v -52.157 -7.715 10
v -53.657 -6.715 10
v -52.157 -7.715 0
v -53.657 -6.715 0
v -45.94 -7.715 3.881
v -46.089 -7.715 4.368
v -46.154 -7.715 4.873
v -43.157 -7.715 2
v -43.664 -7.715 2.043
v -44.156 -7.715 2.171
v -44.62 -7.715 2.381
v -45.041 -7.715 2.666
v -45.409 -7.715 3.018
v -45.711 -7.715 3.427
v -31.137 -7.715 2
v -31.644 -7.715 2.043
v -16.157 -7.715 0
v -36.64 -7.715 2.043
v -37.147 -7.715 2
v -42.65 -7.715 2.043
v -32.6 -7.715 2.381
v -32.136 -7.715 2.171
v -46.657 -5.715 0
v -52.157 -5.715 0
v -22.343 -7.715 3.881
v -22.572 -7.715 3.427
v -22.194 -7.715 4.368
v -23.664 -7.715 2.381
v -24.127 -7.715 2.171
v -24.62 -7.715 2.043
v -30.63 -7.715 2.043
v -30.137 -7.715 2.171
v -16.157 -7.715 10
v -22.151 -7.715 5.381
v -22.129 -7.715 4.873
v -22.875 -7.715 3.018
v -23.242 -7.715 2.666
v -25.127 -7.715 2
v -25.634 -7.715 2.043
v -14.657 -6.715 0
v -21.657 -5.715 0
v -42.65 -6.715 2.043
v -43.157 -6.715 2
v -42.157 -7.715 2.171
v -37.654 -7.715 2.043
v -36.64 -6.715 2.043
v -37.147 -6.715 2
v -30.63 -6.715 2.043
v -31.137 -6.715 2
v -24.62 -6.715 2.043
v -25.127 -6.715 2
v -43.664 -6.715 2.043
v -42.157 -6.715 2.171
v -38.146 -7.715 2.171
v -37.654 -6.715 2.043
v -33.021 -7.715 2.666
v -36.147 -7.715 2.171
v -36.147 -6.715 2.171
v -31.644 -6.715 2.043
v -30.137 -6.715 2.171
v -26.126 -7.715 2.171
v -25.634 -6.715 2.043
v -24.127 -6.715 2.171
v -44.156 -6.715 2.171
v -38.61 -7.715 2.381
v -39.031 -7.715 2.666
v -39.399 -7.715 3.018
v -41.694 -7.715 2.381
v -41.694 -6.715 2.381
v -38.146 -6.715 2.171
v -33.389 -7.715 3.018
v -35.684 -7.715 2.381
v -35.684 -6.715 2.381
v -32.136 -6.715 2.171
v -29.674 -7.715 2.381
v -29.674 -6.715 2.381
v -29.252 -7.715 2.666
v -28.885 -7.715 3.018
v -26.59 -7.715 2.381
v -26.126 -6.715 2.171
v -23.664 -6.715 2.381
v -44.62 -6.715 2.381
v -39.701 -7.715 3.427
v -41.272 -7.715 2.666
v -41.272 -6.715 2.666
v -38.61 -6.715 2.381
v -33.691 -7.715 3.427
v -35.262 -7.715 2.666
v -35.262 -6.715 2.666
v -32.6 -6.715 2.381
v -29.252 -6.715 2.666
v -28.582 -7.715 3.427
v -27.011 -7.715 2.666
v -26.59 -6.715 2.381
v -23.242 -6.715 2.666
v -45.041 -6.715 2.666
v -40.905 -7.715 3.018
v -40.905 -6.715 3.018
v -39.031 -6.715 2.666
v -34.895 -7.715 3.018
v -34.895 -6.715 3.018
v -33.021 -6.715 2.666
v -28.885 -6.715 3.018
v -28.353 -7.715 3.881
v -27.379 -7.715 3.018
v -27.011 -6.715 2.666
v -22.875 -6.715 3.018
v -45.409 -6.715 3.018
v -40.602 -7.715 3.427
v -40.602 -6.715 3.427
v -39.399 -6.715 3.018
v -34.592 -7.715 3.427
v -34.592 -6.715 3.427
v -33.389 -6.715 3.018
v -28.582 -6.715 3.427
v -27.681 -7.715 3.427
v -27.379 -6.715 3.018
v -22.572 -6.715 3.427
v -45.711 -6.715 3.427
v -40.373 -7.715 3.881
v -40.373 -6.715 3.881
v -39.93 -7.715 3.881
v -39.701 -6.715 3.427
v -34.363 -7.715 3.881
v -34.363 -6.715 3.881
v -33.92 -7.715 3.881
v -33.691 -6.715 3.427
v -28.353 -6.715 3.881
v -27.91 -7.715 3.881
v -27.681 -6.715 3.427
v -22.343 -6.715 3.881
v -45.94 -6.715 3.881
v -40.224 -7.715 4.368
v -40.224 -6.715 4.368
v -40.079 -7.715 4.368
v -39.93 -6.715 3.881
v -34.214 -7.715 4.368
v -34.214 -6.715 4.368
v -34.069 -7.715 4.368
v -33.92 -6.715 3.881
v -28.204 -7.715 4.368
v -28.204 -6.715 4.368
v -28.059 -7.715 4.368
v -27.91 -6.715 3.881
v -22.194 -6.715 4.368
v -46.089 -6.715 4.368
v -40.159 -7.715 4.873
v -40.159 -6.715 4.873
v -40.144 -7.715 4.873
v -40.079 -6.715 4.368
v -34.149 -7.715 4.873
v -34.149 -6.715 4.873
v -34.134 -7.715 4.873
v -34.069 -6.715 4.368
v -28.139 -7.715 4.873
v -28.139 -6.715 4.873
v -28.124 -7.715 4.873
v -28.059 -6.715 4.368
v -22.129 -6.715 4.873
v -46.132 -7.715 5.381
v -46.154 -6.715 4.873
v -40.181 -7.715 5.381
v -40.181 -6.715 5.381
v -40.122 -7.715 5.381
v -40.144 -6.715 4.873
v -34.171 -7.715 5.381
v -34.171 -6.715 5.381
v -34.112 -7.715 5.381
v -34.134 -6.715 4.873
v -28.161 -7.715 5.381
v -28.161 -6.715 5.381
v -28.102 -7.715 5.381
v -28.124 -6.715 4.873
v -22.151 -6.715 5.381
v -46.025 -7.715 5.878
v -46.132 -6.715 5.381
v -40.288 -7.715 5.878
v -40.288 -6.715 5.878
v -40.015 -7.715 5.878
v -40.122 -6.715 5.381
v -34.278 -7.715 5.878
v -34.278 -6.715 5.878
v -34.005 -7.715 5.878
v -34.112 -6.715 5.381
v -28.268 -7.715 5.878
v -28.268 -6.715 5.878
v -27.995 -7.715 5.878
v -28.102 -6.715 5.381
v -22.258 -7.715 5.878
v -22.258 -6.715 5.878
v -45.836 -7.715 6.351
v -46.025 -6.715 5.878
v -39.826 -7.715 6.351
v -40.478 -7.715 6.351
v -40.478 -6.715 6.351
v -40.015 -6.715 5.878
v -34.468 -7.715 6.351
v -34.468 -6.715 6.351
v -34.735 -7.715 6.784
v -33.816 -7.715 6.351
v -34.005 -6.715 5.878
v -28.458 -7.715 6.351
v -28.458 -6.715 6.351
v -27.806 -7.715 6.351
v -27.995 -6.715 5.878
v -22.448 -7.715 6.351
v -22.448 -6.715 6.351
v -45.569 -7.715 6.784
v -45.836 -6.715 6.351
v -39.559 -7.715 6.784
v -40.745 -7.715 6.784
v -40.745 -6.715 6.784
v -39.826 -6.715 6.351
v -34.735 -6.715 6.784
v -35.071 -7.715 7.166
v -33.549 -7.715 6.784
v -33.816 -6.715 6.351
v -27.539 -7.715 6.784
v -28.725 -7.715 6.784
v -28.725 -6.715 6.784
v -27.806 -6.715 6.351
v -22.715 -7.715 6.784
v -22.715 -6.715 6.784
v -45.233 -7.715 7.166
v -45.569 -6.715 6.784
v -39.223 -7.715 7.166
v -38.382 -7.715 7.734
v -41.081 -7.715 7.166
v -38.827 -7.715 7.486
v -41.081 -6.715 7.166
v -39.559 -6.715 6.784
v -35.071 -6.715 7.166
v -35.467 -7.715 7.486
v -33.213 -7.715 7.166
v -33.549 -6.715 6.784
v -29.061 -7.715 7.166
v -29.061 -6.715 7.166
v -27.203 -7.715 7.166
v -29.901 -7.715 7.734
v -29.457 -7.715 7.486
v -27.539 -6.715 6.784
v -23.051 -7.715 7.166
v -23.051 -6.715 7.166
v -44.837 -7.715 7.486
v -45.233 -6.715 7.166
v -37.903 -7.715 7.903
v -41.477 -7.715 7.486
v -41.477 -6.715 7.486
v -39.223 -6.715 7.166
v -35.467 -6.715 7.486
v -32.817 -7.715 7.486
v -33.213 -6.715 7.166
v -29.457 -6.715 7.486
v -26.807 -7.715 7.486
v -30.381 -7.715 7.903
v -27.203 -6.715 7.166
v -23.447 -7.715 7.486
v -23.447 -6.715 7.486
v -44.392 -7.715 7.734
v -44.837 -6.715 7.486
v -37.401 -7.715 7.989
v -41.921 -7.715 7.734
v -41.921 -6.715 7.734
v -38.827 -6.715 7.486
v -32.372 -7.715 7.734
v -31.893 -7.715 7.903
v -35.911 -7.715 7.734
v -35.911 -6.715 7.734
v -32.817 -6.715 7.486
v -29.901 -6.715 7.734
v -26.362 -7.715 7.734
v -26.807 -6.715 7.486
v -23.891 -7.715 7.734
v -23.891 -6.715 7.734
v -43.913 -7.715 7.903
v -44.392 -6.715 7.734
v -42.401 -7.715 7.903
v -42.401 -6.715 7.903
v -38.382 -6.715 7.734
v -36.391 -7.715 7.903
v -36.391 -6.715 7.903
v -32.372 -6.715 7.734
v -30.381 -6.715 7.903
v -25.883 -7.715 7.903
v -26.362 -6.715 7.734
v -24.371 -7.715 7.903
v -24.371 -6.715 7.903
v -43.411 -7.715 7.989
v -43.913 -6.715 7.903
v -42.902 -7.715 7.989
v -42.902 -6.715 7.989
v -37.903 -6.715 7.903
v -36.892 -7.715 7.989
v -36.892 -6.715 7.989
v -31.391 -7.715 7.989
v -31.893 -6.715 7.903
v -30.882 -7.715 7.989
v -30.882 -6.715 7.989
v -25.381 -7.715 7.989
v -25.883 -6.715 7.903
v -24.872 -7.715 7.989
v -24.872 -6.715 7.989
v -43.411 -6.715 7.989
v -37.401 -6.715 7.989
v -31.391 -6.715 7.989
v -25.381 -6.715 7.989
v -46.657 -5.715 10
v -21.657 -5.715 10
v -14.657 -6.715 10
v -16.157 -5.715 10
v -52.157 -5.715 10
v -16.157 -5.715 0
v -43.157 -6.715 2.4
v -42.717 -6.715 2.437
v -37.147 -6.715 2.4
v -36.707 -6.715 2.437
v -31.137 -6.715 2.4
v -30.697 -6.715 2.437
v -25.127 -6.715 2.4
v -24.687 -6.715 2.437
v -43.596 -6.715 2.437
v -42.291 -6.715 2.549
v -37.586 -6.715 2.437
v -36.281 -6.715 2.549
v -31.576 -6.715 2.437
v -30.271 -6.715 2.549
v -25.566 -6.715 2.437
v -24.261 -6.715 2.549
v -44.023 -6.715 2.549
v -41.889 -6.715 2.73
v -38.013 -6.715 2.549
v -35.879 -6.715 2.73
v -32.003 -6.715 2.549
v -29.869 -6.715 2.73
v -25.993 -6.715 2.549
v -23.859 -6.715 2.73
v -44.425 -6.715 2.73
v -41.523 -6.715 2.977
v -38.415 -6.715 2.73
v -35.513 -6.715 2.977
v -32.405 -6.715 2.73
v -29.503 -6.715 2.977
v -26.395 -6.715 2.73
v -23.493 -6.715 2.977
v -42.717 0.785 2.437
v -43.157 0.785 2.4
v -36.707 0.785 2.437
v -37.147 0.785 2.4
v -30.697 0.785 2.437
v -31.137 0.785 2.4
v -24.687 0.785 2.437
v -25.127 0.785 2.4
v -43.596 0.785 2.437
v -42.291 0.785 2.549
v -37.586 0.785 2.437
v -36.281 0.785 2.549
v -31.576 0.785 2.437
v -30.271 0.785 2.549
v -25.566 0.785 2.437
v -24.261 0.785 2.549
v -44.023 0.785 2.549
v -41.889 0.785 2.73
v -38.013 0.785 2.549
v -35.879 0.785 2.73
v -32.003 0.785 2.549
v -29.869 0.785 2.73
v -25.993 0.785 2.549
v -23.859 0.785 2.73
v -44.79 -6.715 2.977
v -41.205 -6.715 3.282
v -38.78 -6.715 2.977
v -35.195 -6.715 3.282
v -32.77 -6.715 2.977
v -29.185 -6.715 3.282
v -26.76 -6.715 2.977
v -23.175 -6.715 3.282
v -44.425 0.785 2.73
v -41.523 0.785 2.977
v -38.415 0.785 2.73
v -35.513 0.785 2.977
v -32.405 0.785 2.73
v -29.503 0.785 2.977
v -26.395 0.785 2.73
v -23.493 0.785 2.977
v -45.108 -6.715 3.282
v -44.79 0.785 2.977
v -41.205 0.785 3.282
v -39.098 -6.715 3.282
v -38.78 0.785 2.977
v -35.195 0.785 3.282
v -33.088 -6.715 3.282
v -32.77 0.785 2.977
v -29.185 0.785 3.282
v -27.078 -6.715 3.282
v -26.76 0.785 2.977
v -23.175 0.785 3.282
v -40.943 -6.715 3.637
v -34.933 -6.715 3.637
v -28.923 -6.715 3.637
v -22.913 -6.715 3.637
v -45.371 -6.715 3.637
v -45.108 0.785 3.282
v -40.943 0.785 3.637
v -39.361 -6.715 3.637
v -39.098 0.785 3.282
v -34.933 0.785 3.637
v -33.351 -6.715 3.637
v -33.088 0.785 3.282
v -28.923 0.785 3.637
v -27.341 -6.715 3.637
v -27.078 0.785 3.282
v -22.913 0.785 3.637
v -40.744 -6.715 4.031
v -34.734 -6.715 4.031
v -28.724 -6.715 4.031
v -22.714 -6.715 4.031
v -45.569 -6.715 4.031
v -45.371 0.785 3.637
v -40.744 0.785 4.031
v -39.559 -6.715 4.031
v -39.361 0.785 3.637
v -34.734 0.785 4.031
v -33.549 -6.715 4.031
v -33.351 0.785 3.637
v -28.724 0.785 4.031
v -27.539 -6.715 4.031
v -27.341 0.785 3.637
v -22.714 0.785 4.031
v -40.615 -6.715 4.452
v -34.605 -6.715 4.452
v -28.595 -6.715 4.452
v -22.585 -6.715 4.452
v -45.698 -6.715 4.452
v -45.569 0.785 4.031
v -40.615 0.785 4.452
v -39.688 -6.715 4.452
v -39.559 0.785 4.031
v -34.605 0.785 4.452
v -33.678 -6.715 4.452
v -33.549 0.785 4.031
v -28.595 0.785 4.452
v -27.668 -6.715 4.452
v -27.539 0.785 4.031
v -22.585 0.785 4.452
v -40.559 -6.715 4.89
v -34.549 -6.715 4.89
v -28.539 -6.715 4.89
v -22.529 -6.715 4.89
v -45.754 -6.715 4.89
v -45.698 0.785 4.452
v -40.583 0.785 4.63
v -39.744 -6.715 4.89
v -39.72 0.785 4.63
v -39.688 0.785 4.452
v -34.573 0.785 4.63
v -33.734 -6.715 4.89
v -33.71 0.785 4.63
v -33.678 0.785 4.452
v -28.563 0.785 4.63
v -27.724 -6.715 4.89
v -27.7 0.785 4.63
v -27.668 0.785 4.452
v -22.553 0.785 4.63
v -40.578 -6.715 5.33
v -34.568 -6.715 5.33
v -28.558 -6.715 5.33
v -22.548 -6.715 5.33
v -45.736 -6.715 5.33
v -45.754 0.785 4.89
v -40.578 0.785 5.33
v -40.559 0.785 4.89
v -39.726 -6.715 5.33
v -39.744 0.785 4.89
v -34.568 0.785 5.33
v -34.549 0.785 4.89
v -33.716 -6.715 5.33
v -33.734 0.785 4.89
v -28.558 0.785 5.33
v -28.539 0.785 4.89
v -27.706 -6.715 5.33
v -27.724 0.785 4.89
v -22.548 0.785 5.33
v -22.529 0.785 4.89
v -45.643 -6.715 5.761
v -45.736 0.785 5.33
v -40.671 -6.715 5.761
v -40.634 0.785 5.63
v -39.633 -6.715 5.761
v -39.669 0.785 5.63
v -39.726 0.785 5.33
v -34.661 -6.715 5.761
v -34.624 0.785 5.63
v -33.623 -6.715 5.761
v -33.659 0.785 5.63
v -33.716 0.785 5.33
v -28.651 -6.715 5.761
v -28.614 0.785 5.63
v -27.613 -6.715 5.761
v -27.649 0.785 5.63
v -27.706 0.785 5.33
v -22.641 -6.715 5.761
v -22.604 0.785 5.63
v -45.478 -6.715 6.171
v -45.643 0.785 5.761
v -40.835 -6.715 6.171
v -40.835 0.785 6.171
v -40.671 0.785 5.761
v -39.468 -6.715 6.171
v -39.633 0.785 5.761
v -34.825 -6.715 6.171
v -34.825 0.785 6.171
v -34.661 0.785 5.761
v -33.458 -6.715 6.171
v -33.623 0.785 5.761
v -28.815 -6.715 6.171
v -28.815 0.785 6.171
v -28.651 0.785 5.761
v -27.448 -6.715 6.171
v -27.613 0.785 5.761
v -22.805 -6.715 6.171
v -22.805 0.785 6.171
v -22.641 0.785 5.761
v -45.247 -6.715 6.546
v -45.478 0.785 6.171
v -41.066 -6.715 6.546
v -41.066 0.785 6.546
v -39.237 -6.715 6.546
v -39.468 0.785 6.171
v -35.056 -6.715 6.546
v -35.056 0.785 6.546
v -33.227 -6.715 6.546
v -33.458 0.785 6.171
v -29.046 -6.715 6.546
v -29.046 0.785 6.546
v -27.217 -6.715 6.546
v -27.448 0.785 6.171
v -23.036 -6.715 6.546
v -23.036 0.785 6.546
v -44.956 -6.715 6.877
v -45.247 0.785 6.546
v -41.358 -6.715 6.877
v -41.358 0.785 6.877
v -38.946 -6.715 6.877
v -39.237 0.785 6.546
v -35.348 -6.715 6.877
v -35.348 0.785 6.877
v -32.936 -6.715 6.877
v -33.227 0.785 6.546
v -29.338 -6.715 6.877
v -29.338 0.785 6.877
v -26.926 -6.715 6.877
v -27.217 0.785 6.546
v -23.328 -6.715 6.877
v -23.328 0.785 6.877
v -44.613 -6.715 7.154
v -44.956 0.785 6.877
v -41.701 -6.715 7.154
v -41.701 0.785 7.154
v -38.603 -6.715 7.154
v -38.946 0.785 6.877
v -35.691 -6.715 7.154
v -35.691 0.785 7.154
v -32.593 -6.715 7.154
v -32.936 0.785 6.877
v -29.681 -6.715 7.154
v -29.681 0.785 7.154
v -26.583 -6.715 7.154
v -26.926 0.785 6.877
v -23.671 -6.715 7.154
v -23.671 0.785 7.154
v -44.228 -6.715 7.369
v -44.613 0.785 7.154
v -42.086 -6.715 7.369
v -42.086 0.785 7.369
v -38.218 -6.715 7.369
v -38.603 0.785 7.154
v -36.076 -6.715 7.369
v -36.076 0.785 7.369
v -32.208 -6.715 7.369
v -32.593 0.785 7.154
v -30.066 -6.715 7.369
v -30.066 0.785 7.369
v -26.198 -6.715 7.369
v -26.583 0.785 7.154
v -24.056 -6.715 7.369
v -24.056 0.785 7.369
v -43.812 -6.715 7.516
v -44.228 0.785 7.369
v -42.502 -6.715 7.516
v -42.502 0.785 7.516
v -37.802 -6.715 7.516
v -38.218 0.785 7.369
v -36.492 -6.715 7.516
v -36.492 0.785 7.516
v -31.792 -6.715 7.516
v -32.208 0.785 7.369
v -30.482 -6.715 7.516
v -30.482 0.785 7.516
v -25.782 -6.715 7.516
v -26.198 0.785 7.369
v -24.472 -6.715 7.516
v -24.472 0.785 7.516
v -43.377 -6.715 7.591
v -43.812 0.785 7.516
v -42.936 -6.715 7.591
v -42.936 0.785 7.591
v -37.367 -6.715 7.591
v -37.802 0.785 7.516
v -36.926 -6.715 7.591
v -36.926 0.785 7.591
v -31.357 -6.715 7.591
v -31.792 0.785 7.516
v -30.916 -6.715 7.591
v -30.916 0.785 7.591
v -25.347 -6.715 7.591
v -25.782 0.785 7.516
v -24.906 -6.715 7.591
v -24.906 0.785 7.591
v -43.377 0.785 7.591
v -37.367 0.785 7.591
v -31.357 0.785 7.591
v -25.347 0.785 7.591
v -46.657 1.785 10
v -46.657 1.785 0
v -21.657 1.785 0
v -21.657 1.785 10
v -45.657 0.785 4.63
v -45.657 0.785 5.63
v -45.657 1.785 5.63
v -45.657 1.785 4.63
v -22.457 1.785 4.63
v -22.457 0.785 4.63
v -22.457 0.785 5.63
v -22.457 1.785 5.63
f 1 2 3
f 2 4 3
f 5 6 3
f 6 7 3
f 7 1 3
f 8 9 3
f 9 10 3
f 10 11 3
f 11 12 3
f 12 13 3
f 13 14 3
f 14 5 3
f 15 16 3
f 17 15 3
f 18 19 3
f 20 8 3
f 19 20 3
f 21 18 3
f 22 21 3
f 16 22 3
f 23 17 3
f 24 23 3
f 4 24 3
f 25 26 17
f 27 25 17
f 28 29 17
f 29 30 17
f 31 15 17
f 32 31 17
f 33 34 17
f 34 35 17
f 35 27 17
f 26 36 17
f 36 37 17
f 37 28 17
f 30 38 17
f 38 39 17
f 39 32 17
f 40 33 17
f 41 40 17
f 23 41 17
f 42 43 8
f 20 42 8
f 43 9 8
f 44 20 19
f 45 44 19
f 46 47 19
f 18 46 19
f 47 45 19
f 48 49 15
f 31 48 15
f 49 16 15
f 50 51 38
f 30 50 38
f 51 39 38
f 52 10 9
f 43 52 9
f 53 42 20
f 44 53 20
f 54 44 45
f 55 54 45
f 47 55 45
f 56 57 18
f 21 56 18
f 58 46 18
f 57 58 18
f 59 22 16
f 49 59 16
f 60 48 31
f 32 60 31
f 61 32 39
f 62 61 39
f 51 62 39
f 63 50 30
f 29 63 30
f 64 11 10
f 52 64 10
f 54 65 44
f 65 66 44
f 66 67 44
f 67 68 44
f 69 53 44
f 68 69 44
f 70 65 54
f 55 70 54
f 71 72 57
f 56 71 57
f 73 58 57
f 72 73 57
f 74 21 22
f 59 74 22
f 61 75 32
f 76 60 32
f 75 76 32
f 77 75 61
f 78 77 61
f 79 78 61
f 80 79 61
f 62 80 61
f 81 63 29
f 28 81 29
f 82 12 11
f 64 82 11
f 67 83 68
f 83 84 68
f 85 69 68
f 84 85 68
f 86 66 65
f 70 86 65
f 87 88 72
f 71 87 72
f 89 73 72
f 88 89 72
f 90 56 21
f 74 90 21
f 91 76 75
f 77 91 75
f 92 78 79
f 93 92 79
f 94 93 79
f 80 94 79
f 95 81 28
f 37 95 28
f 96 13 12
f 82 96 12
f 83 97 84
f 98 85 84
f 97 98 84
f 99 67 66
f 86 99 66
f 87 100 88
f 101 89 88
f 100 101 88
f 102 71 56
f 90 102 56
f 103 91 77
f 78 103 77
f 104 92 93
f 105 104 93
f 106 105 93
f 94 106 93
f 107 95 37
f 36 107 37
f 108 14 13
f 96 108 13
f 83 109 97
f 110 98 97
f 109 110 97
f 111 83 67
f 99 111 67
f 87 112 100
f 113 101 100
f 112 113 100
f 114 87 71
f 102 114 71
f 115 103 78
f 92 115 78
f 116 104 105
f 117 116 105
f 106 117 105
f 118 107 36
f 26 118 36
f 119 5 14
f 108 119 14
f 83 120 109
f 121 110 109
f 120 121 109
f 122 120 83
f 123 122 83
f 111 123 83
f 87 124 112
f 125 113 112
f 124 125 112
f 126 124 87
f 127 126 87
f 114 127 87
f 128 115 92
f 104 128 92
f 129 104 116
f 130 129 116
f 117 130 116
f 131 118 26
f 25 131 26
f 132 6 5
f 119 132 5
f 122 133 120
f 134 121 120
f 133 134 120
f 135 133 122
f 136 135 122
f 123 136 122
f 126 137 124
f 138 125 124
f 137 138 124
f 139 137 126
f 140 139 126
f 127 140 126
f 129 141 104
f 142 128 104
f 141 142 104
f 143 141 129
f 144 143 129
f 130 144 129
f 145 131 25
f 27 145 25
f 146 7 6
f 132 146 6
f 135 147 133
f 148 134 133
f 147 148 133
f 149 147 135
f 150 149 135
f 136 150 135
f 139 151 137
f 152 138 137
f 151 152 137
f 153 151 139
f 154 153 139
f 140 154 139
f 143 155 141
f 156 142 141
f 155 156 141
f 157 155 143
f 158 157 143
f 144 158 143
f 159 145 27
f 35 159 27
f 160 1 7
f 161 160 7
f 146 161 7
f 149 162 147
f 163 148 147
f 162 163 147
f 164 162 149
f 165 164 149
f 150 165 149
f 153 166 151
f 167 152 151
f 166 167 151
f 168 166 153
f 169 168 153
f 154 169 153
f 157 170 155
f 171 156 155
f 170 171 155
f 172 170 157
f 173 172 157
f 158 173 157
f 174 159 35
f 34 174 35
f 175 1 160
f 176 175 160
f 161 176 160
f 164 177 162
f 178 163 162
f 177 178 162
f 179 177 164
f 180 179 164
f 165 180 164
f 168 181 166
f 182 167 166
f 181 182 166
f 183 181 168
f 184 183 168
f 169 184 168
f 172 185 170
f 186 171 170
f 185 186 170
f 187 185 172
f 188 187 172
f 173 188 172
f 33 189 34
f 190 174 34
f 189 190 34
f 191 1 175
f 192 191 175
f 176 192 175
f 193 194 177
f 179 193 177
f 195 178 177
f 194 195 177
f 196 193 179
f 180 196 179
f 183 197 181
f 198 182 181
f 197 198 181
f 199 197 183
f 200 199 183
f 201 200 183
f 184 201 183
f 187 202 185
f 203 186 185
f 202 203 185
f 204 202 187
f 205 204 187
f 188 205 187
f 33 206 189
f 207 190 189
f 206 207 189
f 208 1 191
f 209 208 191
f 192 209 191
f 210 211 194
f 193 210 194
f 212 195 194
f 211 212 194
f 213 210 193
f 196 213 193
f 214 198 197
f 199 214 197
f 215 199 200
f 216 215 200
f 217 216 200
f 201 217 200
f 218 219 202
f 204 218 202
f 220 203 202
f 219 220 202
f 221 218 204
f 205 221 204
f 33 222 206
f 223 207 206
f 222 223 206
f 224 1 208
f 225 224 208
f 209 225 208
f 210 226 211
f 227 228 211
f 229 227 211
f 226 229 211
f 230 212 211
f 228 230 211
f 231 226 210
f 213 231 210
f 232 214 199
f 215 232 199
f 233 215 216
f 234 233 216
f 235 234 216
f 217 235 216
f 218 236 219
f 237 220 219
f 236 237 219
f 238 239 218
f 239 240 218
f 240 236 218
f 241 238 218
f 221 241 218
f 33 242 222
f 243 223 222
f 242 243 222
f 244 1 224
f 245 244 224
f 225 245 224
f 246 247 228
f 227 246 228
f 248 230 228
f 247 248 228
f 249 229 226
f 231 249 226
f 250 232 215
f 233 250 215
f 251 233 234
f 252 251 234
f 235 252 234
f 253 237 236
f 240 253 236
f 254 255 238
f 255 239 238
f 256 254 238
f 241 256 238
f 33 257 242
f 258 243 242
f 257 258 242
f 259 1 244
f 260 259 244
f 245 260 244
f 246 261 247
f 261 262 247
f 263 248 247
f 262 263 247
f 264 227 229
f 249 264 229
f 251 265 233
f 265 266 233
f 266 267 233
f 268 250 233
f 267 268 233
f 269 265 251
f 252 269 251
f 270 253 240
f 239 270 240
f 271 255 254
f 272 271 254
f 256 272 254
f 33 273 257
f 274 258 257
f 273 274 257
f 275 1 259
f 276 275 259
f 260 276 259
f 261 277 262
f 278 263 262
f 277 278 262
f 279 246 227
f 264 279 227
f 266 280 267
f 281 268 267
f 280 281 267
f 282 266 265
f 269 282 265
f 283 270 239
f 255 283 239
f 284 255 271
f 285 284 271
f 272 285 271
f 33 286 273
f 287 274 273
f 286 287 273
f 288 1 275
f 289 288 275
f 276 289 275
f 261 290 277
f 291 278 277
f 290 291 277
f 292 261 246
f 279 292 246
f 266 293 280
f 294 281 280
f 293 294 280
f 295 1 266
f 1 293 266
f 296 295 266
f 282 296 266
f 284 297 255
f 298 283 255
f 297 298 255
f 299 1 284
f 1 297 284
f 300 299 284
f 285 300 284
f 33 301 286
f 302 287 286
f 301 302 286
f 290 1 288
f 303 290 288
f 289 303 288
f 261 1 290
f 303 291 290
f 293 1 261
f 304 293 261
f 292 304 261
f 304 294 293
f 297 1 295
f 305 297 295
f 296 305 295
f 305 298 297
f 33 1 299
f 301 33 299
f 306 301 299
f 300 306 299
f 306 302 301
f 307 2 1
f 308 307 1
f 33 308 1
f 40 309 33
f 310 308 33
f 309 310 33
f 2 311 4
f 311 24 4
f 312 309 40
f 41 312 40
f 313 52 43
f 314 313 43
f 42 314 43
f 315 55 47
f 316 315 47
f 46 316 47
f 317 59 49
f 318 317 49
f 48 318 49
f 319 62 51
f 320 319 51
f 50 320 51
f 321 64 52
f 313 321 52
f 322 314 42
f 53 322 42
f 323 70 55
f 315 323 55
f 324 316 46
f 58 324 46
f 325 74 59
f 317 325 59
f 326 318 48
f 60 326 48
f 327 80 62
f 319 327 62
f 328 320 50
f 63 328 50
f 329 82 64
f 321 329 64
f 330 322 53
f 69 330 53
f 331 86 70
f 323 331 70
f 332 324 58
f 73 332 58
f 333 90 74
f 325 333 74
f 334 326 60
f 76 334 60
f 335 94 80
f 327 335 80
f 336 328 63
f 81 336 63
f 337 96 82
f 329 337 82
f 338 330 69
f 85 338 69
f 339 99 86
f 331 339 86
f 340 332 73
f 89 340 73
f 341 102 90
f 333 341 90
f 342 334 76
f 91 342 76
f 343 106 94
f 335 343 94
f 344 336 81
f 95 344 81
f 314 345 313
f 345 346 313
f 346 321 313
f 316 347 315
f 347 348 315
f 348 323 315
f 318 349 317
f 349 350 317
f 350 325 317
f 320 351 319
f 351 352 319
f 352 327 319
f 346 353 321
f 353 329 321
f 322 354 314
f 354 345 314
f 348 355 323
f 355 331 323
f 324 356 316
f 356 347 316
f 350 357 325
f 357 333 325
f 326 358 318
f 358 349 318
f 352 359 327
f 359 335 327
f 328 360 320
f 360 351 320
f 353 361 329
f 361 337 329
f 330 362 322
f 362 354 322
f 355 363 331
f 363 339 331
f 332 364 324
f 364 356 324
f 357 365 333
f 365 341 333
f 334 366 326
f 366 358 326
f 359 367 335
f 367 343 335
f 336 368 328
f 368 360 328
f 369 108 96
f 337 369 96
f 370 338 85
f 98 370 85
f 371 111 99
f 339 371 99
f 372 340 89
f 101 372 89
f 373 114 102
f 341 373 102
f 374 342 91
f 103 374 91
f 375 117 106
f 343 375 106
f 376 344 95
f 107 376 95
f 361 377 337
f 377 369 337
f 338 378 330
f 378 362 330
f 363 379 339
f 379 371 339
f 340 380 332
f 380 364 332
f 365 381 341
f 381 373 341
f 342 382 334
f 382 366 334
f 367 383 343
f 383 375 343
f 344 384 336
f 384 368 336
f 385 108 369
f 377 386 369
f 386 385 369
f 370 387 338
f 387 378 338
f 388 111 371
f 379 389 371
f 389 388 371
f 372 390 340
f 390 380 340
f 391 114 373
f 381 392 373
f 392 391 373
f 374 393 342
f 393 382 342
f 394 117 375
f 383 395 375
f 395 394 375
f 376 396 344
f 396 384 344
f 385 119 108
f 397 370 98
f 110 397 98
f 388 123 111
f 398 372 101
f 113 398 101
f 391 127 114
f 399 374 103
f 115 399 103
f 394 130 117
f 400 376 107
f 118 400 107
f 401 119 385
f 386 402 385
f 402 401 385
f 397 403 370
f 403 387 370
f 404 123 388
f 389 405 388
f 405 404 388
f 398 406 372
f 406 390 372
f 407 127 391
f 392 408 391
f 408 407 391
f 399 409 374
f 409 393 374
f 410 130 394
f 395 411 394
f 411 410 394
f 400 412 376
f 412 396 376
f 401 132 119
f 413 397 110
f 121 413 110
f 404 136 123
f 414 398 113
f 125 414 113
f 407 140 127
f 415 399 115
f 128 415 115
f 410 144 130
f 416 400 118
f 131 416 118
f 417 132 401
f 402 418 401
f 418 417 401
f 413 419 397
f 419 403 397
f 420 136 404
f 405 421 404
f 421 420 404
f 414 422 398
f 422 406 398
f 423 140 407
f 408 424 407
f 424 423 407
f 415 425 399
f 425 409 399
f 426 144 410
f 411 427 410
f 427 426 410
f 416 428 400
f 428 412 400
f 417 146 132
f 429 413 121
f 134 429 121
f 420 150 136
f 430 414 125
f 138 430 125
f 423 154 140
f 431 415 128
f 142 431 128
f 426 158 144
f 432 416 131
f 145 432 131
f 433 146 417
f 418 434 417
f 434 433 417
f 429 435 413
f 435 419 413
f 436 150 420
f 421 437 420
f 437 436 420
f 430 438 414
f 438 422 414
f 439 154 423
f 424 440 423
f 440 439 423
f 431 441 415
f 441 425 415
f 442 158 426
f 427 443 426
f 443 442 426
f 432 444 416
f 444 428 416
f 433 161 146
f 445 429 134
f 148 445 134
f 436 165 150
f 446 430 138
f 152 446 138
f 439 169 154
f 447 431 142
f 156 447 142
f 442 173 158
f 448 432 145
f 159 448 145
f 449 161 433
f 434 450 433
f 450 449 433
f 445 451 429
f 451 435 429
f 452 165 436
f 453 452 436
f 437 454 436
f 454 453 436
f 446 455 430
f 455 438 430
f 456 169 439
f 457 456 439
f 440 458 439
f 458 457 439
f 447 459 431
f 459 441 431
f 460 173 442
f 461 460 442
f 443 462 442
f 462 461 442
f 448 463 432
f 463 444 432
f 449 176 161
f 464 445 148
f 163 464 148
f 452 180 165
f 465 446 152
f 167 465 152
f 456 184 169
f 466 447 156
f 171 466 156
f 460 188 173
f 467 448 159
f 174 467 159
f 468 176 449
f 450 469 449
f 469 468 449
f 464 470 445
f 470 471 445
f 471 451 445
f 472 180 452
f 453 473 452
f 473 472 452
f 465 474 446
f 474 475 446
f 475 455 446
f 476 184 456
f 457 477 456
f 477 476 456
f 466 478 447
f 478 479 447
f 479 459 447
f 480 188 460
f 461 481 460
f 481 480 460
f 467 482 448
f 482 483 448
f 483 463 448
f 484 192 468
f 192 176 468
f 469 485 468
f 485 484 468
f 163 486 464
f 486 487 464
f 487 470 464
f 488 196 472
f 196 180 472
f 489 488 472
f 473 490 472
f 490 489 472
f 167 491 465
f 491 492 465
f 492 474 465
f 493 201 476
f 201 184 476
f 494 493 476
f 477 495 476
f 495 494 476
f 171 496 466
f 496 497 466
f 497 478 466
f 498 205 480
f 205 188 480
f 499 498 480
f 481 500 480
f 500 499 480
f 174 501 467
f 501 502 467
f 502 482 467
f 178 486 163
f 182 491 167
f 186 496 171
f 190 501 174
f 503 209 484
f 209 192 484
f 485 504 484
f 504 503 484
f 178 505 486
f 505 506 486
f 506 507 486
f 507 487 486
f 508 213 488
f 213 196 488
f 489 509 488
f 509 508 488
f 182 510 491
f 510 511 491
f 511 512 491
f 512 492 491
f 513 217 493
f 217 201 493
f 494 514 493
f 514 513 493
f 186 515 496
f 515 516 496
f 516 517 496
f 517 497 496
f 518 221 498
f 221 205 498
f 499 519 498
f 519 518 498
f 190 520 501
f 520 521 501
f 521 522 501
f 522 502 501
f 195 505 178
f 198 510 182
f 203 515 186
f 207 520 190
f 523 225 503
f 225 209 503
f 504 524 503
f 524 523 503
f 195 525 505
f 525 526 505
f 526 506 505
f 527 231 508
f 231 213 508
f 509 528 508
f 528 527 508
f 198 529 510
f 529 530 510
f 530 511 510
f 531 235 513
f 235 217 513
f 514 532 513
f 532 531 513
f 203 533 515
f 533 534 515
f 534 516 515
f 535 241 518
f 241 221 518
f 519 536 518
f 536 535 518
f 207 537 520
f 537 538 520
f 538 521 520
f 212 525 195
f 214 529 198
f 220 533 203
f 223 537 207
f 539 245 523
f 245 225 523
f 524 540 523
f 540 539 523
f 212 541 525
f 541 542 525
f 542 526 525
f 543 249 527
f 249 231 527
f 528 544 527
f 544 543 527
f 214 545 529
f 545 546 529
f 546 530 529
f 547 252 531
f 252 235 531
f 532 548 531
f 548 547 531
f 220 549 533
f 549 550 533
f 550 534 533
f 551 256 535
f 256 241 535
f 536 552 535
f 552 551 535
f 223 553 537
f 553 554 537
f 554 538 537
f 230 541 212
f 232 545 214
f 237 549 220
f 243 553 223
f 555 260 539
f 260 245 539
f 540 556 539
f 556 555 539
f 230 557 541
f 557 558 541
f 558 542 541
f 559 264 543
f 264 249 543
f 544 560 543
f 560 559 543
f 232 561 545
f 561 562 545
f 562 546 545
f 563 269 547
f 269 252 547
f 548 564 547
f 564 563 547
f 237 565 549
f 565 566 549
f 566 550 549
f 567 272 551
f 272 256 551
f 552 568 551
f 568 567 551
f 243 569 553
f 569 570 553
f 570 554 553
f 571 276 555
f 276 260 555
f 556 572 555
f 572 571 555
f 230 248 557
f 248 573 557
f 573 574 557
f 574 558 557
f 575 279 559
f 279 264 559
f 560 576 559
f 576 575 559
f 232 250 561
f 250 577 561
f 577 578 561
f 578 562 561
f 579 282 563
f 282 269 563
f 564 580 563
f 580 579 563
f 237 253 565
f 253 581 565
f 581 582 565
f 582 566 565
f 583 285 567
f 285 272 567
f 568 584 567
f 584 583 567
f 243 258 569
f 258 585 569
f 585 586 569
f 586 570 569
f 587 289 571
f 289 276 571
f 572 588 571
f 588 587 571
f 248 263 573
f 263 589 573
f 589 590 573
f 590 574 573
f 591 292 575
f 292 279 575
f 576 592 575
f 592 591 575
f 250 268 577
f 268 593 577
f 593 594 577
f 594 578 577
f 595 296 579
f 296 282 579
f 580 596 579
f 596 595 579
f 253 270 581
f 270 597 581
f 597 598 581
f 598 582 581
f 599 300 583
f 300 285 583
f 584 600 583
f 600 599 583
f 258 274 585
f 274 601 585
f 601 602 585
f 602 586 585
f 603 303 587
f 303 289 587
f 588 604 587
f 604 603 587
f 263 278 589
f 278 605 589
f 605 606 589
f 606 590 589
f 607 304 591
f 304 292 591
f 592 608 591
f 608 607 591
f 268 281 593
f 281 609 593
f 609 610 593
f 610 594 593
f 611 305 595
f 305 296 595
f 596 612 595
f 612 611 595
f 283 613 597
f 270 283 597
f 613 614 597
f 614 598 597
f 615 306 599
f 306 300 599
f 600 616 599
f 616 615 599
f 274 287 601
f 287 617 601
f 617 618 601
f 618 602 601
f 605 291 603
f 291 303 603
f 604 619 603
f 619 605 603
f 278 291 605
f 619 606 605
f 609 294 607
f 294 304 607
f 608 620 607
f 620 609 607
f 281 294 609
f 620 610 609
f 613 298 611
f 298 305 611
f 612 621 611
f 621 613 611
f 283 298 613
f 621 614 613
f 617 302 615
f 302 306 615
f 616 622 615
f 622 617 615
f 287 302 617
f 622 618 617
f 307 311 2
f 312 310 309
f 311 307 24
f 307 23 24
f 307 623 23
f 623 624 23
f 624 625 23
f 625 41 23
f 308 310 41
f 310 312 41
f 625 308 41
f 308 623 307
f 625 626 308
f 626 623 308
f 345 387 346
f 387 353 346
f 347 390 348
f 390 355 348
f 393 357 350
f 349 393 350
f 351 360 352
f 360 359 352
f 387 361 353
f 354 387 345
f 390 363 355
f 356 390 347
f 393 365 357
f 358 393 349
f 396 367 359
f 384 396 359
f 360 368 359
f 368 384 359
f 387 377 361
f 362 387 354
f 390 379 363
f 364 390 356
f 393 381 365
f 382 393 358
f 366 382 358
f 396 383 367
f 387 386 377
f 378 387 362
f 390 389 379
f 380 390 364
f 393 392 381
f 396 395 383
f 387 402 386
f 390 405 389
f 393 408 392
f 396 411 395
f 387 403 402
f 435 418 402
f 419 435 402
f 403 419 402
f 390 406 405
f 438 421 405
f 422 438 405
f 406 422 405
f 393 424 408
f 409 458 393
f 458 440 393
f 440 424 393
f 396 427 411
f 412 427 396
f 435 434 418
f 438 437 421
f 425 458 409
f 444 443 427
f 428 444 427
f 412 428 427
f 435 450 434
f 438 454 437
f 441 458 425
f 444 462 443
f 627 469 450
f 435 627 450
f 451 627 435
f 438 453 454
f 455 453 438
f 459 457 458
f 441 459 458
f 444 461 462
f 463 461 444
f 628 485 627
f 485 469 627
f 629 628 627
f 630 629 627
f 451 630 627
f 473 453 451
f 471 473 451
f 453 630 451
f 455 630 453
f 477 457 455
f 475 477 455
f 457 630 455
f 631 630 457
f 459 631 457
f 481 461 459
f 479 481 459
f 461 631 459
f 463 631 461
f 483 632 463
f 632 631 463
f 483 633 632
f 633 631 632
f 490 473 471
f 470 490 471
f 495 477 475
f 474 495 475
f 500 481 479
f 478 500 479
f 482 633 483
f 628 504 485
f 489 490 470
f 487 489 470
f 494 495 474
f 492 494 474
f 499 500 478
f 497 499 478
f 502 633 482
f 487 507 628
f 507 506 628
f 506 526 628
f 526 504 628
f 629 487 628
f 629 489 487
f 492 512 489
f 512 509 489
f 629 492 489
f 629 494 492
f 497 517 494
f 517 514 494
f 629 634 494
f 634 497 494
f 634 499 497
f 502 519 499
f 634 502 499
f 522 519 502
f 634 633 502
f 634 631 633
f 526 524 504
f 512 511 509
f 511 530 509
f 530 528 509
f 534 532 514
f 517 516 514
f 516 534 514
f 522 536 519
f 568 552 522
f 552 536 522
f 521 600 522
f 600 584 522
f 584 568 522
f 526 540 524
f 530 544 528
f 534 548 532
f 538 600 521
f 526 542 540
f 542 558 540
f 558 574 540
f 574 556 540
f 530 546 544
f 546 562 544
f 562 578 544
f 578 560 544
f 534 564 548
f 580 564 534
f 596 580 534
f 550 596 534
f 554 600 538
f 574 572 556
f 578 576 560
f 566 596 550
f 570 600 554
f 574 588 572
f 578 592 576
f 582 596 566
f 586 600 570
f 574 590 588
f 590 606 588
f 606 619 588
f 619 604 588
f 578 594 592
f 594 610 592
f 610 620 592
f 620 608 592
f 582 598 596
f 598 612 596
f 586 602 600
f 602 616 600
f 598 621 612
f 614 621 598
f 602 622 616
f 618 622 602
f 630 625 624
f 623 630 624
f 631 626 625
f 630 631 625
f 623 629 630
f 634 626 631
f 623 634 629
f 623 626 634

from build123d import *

# Parameters (mm, degrees)
P_IDAT_VYSUNUT_M1_DEPTH  = 10
SKICA2_R                 = 3
ODEBRAT_VYSUNUT_M1_DEPTH = 1
SKICA3_R                 = 2.6
ODEBRAT_VYSUNUT_M2_DEPTH = 7.5
SKICA4_W                 = 23.2
SKICA4_H                 = 1
ODEBRAT_VYSUNUT_M3_DEPTH = 1


with BuildPart() as part:
    # Skica1 → Přidat vysunutím1 (new body)
    with BuildSketch(Plane.XY):
        Polygon((-52.156744291, -7.714704976), (-16.156744291, -7.714704976), (-14.656744291, -6.714704976), (-16.156744291, -5.714704976), (-21.656744291, -5.714704976), (-21.656744291, 1.785295024), (-46.656744291, 1.785295024), (-46.656744291, -5.714704976), (-52.156744291, -5.714704976), (-53.656744291, -6.714704976), align=None)
    extrude(amount=P_IDAT_VYSUNUT_M1_DEPTH)

    # Skica2 → Odebrat vysunutím1 (cut)
    with BuildSketch(Plane(origin=(0, -7.714704976, 0), x_dir=(-1, 0, 0), z_dir=(0, -1, 0))):
        with Locations((43.156744291, -5)):
            Circle(SKICA2_R)
        with Locations((37.146744291, -5)):
            Circle(SKICA2_R)
        with Locations((31.136744291, -5)):
            Circle(SKICA2_R)
        with Locations((25.126744291, -5)):
            Circle(SKICA2_R)
    extrude(amount=-ODEBRAT_VYSUNUT_M1_DEPTH, mode=Mode.SUBTRACT)

    # Skica3 → Odebrat vysunutím2 (cut)
    with BuildSketch(Plane(origin=(0, -6.714704976, 0), x_dir=(-1, 0, 0), z_dir=(0, -1, 0))):
        with Locations((43.156744291, -5)):
            Circle(SKICA3_R)
        with Locations((37.146744291, -5)):
            Circle(SKICA3_R)
        with Locations((31.136744291, -5)):
            Circle(SKICA3_R)
        with Locations((25.126744291, -5)):
            Circle(SKICA3_R)
    extrude(amount=-ODEBRAT_VYSUNUT_M2_DEPTH, mode=Mode.SUBTRACT)

    # Skica4 → Odebrat vysunutím3 (cut)
    with BuildSketch(Plane(origin=(0, 1.785295024, 0), x_dir=(1, 0, 0), z_dir=(0, 1, 0))):
        with Locations((-34.056744291, -5.129927758)):
            Rectangle(SKICA4_W, SKICA4_H)
    extrude(amount=-ODEBRAT_VYSUNUT_M3_DEPTH, mode=Mode.SUBTRACT)


solid = part.part
